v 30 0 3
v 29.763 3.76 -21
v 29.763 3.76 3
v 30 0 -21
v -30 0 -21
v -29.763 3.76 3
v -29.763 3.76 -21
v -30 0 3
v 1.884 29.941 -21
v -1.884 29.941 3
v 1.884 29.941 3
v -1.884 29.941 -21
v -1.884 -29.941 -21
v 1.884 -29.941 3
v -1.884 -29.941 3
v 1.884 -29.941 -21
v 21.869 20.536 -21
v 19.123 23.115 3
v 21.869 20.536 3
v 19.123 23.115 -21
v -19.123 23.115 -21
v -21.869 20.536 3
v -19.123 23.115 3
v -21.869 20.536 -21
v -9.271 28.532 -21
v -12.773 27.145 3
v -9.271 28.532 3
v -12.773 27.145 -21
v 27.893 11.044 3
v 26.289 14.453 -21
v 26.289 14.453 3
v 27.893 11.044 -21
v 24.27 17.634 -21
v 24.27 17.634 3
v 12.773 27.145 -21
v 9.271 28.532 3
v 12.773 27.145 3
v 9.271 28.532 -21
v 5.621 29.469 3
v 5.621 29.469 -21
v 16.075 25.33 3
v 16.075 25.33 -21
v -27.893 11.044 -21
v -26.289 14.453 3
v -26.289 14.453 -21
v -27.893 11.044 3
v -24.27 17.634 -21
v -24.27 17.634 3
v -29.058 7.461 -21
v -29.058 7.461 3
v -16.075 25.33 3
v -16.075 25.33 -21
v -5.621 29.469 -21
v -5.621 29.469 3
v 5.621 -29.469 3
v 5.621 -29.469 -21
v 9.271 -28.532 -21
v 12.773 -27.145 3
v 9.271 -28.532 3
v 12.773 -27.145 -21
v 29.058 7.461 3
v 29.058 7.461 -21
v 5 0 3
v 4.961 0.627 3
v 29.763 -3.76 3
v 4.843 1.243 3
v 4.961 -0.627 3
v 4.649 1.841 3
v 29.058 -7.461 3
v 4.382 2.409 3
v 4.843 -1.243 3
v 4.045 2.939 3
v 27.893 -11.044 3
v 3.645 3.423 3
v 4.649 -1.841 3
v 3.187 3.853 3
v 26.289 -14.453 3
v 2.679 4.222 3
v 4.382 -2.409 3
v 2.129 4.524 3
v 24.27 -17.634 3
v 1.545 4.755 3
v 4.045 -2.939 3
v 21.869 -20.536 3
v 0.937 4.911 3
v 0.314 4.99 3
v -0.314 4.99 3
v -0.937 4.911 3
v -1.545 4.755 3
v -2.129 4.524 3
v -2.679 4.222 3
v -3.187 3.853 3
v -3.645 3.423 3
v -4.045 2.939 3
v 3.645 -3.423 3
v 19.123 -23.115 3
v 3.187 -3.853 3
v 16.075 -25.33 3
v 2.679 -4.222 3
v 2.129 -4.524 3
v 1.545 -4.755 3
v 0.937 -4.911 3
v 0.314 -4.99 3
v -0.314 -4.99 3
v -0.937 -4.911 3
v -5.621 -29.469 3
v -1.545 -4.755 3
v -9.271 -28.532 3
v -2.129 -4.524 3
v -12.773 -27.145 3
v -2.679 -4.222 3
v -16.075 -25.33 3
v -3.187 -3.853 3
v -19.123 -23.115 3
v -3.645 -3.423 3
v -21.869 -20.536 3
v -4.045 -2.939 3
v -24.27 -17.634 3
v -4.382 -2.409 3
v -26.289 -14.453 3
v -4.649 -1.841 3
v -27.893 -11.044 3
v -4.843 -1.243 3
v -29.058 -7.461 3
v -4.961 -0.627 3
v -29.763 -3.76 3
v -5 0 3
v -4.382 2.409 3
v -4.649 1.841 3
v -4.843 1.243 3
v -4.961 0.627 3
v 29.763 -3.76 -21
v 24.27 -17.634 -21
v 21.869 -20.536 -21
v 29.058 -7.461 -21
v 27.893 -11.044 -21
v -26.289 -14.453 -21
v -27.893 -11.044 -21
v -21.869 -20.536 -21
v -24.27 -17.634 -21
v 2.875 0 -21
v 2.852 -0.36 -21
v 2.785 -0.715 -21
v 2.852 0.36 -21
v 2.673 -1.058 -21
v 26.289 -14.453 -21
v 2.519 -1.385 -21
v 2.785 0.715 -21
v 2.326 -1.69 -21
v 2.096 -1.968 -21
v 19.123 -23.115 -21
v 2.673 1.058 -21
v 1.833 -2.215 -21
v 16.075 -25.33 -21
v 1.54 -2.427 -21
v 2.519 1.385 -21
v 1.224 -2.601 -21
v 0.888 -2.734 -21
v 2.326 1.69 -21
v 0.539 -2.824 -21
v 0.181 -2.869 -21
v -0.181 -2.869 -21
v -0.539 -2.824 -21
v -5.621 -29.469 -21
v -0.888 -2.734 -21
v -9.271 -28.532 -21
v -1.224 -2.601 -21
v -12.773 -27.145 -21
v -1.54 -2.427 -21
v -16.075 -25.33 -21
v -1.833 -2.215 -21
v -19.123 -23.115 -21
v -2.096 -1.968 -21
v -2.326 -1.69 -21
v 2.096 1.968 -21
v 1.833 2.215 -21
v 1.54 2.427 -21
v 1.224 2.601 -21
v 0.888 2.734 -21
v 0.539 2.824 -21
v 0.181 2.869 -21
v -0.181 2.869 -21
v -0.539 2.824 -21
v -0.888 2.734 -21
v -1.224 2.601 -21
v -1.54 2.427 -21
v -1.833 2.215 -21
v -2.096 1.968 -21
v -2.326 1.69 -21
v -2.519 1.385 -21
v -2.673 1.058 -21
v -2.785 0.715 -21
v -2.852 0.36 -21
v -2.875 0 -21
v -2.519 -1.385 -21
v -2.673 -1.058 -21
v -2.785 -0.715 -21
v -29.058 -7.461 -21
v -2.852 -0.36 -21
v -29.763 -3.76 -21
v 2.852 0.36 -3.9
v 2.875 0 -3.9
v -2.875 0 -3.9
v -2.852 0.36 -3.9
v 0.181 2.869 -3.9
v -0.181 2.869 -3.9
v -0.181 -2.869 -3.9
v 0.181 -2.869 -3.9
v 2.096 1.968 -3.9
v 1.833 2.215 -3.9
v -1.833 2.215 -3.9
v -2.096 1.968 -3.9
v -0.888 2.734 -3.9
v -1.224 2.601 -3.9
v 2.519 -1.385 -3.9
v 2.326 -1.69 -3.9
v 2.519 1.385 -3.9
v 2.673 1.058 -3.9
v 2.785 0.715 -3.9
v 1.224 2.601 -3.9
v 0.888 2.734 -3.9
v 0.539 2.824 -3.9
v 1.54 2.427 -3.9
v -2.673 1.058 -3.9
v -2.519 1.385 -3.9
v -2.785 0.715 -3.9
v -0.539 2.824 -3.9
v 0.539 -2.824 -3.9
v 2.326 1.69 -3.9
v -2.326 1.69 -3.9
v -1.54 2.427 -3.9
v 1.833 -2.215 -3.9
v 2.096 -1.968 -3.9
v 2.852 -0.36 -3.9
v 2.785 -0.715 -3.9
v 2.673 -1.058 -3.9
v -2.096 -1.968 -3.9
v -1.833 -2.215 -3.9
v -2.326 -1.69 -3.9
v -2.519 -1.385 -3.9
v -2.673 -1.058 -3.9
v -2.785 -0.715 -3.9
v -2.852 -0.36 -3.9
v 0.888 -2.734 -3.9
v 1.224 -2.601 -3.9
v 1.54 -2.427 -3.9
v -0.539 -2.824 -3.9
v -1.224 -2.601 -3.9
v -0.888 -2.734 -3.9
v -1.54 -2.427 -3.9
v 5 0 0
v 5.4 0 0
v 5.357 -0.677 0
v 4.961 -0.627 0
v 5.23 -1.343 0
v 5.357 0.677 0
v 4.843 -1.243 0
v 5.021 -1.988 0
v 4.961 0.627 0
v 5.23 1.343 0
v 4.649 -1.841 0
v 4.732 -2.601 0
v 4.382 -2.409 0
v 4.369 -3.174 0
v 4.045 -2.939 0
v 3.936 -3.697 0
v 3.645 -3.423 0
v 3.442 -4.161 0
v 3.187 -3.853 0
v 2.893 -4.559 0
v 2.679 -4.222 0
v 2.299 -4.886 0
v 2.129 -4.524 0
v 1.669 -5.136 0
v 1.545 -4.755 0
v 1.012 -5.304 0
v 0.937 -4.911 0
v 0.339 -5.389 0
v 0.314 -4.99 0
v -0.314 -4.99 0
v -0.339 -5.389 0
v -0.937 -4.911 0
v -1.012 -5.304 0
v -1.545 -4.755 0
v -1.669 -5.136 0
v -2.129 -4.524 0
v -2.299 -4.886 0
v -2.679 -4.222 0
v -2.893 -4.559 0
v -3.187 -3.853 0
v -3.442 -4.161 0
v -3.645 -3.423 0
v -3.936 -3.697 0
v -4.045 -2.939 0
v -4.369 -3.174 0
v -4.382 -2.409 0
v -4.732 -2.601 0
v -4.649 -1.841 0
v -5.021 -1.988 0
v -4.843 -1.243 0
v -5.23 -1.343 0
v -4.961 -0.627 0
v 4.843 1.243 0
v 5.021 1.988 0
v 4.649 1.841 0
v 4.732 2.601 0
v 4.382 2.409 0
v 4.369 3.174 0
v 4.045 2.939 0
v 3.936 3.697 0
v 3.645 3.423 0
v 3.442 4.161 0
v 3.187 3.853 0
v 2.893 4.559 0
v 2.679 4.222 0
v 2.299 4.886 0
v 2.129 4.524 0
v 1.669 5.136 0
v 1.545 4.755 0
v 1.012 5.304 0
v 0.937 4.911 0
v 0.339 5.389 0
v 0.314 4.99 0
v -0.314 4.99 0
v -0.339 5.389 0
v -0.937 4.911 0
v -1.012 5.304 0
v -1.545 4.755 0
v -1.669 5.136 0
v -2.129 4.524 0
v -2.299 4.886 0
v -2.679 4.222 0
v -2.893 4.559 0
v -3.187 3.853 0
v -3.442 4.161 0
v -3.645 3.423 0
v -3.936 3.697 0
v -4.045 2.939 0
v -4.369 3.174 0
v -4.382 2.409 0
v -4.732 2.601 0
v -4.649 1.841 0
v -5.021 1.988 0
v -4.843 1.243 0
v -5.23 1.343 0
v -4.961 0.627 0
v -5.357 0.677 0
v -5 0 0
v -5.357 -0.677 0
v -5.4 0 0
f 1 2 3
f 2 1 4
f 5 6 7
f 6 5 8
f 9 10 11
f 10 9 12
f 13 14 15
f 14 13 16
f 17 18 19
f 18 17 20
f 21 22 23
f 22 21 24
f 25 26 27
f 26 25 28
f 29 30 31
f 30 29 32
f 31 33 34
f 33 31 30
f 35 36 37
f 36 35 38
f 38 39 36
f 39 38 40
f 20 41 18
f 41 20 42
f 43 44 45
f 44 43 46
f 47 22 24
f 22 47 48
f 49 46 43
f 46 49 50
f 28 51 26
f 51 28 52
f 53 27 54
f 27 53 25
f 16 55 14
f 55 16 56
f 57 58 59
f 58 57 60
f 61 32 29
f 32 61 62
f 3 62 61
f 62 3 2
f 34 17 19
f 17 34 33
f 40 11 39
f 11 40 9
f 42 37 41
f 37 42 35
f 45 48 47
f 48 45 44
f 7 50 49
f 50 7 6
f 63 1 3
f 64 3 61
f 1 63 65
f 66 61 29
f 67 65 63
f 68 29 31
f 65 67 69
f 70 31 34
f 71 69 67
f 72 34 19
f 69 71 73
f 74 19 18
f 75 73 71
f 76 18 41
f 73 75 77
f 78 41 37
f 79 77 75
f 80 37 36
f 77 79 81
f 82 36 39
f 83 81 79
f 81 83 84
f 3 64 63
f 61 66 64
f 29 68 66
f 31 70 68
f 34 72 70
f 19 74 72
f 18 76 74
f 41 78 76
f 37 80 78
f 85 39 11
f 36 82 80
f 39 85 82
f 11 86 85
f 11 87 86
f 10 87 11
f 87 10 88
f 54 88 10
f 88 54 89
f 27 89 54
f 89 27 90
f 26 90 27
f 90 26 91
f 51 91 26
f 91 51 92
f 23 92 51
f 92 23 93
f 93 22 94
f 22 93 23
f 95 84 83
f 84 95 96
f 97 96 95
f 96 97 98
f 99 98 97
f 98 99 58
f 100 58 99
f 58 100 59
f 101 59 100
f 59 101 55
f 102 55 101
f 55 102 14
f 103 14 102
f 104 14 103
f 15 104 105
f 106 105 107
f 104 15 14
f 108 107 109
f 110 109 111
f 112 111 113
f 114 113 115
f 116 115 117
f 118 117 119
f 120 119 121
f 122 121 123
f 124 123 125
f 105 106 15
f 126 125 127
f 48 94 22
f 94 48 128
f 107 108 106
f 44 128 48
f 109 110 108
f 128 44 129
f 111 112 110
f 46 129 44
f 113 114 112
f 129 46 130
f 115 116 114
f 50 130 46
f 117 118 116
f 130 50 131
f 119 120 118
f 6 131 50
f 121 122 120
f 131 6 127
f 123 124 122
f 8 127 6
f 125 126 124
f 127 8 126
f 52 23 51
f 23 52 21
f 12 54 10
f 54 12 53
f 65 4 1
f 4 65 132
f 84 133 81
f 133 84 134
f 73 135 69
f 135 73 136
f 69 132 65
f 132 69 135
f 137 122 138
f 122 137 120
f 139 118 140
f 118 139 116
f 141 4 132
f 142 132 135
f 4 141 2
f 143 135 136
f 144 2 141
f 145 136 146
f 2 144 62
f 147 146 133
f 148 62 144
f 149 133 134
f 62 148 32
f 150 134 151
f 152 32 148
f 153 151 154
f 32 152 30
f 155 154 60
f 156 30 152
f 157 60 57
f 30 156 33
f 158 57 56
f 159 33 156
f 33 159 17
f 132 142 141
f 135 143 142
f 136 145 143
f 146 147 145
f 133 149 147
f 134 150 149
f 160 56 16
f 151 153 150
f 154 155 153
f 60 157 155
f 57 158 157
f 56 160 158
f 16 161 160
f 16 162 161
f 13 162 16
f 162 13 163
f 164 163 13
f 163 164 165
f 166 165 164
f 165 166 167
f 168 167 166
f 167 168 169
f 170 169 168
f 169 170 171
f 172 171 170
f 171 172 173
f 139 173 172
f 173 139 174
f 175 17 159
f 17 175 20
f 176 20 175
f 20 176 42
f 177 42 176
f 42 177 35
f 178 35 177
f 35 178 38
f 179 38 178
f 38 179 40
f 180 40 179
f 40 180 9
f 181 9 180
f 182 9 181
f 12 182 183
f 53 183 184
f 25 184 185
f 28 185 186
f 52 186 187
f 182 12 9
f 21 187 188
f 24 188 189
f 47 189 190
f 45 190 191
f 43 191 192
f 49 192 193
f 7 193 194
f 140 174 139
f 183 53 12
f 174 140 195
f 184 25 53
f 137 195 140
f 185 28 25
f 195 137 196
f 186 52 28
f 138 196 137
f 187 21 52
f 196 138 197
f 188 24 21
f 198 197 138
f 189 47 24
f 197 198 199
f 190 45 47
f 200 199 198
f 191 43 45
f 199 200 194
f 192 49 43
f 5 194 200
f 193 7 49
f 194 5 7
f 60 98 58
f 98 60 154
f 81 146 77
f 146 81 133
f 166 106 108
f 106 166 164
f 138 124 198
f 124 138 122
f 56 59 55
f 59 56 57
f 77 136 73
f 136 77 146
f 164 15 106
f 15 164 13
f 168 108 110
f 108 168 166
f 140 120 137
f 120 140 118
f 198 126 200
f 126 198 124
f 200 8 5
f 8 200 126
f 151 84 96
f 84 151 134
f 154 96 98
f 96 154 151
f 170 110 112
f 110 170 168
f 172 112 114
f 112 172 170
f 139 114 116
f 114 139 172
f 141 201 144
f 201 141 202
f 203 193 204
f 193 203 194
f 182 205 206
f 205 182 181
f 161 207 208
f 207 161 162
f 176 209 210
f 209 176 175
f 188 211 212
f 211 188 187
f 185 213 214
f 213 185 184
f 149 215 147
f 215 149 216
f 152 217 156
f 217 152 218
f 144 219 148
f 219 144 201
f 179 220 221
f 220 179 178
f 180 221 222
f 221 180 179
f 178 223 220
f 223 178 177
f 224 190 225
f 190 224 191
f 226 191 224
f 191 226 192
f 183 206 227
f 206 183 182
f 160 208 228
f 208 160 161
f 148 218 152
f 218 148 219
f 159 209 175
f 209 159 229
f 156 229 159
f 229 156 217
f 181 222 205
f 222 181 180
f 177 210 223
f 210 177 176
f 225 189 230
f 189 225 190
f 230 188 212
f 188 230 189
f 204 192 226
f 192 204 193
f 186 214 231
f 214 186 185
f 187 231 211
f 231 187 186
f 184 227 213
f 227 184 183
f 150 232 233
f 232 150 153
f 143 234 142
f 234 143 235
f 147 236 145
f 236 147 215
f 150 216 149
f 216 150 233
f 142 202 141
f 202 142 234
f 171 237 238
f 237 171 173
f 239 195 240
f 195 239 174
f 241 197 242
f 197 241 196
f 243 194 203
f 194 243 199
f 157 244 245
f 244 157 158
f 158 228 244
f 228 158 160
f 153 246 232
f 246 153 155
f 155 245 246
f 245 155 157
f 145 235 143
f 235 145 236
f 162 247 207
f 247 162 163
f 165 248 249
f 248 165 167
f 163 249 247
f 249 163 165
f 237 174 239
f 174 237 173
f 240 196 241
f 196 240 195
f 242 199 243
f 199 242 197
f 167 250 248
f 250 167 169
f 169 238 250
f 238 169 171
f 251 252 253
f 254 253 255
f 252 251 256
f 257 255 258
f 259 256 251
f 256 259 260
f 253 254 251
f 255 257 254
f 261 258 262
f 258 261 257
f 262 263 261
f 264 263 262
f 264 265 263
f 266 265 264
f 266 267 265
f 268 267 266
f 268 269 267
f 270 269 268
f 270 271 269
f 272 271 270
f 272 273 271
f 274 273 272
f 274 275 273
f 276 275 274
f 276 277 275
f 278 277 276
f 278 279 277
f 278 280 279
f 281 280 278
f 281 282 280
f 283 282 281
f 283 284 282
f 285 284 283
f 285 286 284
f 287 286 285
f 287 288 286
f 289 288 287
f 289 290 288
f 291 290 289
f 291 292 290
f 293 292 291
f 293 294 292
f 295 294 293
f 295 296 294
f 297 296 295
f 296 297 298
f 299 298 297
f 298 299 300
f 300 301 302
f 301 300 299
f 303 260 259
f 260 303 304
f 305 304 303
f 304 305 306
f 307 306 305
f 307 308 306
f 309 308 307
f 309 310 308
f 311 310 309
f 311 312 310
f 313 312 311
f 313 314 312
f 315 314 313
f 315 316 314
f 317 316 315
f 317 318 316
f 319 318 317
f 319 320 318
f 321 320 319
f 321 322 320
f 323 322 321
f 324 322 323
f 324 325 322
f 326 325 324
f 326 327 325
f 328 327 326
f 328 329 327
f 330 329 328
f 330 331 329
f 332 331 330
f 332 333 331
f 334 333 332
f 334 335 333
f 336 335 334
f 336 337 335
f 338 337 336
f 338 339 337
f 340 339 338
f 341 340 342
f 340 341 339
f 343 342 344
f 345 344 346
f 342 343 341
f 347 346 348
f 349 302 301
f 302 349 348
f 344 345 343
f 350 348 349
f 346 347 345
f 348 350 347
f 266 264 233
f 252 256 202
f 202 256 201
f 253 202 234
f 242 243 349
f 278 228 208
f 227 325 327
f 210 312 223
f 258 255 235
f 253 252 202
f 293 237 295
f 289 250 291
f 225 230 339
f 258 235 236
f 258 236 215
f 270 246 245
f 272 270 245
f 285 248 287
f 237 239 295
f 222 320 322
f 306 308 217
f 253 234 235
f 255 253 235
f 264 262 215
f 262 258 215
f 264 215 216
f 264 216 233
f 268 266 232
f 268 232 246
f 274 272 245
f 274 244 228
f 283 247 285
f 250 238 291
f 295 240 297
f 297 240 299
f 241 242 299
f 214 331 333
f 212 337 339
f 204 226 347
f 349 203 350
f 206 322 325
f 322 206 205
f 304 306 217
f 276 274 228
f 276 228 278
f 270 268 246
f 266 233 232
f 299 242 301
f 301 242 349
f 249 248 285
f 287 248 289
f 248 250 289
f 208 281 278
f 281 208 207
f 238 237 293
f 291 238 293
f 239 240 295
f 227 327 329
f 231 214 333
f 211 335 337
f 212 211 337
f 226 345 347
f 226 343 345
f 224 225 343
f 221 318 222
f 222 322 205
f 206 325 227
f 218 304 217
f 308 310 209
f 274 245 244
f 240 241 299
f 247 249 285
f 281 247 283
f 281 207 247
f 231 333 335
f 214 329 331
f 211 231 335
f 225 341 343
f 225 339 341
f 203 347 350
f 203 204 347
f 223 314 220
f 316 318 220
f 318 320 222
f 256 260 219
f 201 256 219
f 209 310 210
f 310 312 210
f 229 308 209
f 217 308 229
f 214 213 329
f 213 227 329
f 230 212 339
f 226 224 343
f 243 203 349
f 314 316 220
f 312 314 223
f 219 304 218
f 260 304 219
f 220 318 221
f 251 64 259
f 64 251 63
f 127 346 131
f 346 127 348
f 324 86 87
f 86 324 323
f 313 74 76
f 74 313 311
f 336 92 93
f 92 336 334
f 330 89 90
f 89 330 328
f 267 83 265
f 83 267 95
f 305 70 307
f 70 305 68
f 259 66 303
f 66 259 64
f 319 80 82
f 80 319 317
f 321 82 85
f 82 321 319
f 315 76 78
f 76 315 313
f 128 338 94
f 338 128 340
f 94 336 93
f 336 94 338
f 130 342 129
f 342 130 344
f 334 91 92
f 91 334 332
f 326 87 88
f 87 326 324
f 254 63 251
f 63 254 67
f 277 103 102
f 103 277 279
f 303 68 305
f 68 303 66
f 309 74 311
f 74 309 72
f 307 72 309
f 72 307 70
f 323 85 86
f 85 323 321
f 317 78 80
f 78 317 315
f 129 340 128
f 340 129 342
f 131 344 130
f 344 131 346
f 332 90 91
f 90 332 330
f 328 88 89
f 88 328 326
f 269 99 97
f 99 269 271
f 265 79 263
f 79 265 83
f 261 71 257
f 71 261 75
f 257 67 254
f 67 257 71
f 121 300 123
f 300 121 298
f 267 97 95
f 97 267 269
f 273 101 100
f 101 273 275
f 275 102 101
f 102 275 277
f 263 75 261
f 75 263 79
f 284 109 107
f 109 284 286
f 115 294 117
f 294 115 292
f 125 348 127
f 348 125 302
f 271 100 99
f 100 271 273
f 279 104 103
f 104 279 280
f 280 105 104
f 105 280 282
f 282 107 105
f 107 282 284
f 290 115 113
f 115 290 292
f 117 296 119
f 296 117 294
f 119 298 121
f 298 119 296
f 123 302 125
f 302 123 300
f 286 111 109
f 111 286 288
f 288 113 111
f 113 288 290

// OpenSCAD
$fn = 50;

difference() {
	union() {
		translate(v = [0, 0, -21.0]) {
			cylinder(h = 24, r = 30.0);
		}
		#translate(v = [0, 0, -24.0]) {
			cylinder(h = 24, r = 2.875);
		}
	}
	union() {
		translate(v = [0, 0, 0]) {
			rotate(a = [0, 0, 0]) {
				difference() {
					union() {
						translate(v = [0, 0, -24.0]) {
							cylinder(h = 24, r = 2.6);
						}
						translate(v = [0, 0, -3.9]) {
							cylinder(h = 3.9, r1 = 2.875, r2 = 5.4);
						}
						translate(v = [0, 0, -24.0]) {
							cylinder(h = 24, r = 2.875);
						}
						translate(v = [0, 0, -24.0]) {
							cylinder(h = 24, r = 2.6);
						}
					}
					union();
				}
			}
		}
		#cylinder(h = 3, r = 5.0);
	}
}
